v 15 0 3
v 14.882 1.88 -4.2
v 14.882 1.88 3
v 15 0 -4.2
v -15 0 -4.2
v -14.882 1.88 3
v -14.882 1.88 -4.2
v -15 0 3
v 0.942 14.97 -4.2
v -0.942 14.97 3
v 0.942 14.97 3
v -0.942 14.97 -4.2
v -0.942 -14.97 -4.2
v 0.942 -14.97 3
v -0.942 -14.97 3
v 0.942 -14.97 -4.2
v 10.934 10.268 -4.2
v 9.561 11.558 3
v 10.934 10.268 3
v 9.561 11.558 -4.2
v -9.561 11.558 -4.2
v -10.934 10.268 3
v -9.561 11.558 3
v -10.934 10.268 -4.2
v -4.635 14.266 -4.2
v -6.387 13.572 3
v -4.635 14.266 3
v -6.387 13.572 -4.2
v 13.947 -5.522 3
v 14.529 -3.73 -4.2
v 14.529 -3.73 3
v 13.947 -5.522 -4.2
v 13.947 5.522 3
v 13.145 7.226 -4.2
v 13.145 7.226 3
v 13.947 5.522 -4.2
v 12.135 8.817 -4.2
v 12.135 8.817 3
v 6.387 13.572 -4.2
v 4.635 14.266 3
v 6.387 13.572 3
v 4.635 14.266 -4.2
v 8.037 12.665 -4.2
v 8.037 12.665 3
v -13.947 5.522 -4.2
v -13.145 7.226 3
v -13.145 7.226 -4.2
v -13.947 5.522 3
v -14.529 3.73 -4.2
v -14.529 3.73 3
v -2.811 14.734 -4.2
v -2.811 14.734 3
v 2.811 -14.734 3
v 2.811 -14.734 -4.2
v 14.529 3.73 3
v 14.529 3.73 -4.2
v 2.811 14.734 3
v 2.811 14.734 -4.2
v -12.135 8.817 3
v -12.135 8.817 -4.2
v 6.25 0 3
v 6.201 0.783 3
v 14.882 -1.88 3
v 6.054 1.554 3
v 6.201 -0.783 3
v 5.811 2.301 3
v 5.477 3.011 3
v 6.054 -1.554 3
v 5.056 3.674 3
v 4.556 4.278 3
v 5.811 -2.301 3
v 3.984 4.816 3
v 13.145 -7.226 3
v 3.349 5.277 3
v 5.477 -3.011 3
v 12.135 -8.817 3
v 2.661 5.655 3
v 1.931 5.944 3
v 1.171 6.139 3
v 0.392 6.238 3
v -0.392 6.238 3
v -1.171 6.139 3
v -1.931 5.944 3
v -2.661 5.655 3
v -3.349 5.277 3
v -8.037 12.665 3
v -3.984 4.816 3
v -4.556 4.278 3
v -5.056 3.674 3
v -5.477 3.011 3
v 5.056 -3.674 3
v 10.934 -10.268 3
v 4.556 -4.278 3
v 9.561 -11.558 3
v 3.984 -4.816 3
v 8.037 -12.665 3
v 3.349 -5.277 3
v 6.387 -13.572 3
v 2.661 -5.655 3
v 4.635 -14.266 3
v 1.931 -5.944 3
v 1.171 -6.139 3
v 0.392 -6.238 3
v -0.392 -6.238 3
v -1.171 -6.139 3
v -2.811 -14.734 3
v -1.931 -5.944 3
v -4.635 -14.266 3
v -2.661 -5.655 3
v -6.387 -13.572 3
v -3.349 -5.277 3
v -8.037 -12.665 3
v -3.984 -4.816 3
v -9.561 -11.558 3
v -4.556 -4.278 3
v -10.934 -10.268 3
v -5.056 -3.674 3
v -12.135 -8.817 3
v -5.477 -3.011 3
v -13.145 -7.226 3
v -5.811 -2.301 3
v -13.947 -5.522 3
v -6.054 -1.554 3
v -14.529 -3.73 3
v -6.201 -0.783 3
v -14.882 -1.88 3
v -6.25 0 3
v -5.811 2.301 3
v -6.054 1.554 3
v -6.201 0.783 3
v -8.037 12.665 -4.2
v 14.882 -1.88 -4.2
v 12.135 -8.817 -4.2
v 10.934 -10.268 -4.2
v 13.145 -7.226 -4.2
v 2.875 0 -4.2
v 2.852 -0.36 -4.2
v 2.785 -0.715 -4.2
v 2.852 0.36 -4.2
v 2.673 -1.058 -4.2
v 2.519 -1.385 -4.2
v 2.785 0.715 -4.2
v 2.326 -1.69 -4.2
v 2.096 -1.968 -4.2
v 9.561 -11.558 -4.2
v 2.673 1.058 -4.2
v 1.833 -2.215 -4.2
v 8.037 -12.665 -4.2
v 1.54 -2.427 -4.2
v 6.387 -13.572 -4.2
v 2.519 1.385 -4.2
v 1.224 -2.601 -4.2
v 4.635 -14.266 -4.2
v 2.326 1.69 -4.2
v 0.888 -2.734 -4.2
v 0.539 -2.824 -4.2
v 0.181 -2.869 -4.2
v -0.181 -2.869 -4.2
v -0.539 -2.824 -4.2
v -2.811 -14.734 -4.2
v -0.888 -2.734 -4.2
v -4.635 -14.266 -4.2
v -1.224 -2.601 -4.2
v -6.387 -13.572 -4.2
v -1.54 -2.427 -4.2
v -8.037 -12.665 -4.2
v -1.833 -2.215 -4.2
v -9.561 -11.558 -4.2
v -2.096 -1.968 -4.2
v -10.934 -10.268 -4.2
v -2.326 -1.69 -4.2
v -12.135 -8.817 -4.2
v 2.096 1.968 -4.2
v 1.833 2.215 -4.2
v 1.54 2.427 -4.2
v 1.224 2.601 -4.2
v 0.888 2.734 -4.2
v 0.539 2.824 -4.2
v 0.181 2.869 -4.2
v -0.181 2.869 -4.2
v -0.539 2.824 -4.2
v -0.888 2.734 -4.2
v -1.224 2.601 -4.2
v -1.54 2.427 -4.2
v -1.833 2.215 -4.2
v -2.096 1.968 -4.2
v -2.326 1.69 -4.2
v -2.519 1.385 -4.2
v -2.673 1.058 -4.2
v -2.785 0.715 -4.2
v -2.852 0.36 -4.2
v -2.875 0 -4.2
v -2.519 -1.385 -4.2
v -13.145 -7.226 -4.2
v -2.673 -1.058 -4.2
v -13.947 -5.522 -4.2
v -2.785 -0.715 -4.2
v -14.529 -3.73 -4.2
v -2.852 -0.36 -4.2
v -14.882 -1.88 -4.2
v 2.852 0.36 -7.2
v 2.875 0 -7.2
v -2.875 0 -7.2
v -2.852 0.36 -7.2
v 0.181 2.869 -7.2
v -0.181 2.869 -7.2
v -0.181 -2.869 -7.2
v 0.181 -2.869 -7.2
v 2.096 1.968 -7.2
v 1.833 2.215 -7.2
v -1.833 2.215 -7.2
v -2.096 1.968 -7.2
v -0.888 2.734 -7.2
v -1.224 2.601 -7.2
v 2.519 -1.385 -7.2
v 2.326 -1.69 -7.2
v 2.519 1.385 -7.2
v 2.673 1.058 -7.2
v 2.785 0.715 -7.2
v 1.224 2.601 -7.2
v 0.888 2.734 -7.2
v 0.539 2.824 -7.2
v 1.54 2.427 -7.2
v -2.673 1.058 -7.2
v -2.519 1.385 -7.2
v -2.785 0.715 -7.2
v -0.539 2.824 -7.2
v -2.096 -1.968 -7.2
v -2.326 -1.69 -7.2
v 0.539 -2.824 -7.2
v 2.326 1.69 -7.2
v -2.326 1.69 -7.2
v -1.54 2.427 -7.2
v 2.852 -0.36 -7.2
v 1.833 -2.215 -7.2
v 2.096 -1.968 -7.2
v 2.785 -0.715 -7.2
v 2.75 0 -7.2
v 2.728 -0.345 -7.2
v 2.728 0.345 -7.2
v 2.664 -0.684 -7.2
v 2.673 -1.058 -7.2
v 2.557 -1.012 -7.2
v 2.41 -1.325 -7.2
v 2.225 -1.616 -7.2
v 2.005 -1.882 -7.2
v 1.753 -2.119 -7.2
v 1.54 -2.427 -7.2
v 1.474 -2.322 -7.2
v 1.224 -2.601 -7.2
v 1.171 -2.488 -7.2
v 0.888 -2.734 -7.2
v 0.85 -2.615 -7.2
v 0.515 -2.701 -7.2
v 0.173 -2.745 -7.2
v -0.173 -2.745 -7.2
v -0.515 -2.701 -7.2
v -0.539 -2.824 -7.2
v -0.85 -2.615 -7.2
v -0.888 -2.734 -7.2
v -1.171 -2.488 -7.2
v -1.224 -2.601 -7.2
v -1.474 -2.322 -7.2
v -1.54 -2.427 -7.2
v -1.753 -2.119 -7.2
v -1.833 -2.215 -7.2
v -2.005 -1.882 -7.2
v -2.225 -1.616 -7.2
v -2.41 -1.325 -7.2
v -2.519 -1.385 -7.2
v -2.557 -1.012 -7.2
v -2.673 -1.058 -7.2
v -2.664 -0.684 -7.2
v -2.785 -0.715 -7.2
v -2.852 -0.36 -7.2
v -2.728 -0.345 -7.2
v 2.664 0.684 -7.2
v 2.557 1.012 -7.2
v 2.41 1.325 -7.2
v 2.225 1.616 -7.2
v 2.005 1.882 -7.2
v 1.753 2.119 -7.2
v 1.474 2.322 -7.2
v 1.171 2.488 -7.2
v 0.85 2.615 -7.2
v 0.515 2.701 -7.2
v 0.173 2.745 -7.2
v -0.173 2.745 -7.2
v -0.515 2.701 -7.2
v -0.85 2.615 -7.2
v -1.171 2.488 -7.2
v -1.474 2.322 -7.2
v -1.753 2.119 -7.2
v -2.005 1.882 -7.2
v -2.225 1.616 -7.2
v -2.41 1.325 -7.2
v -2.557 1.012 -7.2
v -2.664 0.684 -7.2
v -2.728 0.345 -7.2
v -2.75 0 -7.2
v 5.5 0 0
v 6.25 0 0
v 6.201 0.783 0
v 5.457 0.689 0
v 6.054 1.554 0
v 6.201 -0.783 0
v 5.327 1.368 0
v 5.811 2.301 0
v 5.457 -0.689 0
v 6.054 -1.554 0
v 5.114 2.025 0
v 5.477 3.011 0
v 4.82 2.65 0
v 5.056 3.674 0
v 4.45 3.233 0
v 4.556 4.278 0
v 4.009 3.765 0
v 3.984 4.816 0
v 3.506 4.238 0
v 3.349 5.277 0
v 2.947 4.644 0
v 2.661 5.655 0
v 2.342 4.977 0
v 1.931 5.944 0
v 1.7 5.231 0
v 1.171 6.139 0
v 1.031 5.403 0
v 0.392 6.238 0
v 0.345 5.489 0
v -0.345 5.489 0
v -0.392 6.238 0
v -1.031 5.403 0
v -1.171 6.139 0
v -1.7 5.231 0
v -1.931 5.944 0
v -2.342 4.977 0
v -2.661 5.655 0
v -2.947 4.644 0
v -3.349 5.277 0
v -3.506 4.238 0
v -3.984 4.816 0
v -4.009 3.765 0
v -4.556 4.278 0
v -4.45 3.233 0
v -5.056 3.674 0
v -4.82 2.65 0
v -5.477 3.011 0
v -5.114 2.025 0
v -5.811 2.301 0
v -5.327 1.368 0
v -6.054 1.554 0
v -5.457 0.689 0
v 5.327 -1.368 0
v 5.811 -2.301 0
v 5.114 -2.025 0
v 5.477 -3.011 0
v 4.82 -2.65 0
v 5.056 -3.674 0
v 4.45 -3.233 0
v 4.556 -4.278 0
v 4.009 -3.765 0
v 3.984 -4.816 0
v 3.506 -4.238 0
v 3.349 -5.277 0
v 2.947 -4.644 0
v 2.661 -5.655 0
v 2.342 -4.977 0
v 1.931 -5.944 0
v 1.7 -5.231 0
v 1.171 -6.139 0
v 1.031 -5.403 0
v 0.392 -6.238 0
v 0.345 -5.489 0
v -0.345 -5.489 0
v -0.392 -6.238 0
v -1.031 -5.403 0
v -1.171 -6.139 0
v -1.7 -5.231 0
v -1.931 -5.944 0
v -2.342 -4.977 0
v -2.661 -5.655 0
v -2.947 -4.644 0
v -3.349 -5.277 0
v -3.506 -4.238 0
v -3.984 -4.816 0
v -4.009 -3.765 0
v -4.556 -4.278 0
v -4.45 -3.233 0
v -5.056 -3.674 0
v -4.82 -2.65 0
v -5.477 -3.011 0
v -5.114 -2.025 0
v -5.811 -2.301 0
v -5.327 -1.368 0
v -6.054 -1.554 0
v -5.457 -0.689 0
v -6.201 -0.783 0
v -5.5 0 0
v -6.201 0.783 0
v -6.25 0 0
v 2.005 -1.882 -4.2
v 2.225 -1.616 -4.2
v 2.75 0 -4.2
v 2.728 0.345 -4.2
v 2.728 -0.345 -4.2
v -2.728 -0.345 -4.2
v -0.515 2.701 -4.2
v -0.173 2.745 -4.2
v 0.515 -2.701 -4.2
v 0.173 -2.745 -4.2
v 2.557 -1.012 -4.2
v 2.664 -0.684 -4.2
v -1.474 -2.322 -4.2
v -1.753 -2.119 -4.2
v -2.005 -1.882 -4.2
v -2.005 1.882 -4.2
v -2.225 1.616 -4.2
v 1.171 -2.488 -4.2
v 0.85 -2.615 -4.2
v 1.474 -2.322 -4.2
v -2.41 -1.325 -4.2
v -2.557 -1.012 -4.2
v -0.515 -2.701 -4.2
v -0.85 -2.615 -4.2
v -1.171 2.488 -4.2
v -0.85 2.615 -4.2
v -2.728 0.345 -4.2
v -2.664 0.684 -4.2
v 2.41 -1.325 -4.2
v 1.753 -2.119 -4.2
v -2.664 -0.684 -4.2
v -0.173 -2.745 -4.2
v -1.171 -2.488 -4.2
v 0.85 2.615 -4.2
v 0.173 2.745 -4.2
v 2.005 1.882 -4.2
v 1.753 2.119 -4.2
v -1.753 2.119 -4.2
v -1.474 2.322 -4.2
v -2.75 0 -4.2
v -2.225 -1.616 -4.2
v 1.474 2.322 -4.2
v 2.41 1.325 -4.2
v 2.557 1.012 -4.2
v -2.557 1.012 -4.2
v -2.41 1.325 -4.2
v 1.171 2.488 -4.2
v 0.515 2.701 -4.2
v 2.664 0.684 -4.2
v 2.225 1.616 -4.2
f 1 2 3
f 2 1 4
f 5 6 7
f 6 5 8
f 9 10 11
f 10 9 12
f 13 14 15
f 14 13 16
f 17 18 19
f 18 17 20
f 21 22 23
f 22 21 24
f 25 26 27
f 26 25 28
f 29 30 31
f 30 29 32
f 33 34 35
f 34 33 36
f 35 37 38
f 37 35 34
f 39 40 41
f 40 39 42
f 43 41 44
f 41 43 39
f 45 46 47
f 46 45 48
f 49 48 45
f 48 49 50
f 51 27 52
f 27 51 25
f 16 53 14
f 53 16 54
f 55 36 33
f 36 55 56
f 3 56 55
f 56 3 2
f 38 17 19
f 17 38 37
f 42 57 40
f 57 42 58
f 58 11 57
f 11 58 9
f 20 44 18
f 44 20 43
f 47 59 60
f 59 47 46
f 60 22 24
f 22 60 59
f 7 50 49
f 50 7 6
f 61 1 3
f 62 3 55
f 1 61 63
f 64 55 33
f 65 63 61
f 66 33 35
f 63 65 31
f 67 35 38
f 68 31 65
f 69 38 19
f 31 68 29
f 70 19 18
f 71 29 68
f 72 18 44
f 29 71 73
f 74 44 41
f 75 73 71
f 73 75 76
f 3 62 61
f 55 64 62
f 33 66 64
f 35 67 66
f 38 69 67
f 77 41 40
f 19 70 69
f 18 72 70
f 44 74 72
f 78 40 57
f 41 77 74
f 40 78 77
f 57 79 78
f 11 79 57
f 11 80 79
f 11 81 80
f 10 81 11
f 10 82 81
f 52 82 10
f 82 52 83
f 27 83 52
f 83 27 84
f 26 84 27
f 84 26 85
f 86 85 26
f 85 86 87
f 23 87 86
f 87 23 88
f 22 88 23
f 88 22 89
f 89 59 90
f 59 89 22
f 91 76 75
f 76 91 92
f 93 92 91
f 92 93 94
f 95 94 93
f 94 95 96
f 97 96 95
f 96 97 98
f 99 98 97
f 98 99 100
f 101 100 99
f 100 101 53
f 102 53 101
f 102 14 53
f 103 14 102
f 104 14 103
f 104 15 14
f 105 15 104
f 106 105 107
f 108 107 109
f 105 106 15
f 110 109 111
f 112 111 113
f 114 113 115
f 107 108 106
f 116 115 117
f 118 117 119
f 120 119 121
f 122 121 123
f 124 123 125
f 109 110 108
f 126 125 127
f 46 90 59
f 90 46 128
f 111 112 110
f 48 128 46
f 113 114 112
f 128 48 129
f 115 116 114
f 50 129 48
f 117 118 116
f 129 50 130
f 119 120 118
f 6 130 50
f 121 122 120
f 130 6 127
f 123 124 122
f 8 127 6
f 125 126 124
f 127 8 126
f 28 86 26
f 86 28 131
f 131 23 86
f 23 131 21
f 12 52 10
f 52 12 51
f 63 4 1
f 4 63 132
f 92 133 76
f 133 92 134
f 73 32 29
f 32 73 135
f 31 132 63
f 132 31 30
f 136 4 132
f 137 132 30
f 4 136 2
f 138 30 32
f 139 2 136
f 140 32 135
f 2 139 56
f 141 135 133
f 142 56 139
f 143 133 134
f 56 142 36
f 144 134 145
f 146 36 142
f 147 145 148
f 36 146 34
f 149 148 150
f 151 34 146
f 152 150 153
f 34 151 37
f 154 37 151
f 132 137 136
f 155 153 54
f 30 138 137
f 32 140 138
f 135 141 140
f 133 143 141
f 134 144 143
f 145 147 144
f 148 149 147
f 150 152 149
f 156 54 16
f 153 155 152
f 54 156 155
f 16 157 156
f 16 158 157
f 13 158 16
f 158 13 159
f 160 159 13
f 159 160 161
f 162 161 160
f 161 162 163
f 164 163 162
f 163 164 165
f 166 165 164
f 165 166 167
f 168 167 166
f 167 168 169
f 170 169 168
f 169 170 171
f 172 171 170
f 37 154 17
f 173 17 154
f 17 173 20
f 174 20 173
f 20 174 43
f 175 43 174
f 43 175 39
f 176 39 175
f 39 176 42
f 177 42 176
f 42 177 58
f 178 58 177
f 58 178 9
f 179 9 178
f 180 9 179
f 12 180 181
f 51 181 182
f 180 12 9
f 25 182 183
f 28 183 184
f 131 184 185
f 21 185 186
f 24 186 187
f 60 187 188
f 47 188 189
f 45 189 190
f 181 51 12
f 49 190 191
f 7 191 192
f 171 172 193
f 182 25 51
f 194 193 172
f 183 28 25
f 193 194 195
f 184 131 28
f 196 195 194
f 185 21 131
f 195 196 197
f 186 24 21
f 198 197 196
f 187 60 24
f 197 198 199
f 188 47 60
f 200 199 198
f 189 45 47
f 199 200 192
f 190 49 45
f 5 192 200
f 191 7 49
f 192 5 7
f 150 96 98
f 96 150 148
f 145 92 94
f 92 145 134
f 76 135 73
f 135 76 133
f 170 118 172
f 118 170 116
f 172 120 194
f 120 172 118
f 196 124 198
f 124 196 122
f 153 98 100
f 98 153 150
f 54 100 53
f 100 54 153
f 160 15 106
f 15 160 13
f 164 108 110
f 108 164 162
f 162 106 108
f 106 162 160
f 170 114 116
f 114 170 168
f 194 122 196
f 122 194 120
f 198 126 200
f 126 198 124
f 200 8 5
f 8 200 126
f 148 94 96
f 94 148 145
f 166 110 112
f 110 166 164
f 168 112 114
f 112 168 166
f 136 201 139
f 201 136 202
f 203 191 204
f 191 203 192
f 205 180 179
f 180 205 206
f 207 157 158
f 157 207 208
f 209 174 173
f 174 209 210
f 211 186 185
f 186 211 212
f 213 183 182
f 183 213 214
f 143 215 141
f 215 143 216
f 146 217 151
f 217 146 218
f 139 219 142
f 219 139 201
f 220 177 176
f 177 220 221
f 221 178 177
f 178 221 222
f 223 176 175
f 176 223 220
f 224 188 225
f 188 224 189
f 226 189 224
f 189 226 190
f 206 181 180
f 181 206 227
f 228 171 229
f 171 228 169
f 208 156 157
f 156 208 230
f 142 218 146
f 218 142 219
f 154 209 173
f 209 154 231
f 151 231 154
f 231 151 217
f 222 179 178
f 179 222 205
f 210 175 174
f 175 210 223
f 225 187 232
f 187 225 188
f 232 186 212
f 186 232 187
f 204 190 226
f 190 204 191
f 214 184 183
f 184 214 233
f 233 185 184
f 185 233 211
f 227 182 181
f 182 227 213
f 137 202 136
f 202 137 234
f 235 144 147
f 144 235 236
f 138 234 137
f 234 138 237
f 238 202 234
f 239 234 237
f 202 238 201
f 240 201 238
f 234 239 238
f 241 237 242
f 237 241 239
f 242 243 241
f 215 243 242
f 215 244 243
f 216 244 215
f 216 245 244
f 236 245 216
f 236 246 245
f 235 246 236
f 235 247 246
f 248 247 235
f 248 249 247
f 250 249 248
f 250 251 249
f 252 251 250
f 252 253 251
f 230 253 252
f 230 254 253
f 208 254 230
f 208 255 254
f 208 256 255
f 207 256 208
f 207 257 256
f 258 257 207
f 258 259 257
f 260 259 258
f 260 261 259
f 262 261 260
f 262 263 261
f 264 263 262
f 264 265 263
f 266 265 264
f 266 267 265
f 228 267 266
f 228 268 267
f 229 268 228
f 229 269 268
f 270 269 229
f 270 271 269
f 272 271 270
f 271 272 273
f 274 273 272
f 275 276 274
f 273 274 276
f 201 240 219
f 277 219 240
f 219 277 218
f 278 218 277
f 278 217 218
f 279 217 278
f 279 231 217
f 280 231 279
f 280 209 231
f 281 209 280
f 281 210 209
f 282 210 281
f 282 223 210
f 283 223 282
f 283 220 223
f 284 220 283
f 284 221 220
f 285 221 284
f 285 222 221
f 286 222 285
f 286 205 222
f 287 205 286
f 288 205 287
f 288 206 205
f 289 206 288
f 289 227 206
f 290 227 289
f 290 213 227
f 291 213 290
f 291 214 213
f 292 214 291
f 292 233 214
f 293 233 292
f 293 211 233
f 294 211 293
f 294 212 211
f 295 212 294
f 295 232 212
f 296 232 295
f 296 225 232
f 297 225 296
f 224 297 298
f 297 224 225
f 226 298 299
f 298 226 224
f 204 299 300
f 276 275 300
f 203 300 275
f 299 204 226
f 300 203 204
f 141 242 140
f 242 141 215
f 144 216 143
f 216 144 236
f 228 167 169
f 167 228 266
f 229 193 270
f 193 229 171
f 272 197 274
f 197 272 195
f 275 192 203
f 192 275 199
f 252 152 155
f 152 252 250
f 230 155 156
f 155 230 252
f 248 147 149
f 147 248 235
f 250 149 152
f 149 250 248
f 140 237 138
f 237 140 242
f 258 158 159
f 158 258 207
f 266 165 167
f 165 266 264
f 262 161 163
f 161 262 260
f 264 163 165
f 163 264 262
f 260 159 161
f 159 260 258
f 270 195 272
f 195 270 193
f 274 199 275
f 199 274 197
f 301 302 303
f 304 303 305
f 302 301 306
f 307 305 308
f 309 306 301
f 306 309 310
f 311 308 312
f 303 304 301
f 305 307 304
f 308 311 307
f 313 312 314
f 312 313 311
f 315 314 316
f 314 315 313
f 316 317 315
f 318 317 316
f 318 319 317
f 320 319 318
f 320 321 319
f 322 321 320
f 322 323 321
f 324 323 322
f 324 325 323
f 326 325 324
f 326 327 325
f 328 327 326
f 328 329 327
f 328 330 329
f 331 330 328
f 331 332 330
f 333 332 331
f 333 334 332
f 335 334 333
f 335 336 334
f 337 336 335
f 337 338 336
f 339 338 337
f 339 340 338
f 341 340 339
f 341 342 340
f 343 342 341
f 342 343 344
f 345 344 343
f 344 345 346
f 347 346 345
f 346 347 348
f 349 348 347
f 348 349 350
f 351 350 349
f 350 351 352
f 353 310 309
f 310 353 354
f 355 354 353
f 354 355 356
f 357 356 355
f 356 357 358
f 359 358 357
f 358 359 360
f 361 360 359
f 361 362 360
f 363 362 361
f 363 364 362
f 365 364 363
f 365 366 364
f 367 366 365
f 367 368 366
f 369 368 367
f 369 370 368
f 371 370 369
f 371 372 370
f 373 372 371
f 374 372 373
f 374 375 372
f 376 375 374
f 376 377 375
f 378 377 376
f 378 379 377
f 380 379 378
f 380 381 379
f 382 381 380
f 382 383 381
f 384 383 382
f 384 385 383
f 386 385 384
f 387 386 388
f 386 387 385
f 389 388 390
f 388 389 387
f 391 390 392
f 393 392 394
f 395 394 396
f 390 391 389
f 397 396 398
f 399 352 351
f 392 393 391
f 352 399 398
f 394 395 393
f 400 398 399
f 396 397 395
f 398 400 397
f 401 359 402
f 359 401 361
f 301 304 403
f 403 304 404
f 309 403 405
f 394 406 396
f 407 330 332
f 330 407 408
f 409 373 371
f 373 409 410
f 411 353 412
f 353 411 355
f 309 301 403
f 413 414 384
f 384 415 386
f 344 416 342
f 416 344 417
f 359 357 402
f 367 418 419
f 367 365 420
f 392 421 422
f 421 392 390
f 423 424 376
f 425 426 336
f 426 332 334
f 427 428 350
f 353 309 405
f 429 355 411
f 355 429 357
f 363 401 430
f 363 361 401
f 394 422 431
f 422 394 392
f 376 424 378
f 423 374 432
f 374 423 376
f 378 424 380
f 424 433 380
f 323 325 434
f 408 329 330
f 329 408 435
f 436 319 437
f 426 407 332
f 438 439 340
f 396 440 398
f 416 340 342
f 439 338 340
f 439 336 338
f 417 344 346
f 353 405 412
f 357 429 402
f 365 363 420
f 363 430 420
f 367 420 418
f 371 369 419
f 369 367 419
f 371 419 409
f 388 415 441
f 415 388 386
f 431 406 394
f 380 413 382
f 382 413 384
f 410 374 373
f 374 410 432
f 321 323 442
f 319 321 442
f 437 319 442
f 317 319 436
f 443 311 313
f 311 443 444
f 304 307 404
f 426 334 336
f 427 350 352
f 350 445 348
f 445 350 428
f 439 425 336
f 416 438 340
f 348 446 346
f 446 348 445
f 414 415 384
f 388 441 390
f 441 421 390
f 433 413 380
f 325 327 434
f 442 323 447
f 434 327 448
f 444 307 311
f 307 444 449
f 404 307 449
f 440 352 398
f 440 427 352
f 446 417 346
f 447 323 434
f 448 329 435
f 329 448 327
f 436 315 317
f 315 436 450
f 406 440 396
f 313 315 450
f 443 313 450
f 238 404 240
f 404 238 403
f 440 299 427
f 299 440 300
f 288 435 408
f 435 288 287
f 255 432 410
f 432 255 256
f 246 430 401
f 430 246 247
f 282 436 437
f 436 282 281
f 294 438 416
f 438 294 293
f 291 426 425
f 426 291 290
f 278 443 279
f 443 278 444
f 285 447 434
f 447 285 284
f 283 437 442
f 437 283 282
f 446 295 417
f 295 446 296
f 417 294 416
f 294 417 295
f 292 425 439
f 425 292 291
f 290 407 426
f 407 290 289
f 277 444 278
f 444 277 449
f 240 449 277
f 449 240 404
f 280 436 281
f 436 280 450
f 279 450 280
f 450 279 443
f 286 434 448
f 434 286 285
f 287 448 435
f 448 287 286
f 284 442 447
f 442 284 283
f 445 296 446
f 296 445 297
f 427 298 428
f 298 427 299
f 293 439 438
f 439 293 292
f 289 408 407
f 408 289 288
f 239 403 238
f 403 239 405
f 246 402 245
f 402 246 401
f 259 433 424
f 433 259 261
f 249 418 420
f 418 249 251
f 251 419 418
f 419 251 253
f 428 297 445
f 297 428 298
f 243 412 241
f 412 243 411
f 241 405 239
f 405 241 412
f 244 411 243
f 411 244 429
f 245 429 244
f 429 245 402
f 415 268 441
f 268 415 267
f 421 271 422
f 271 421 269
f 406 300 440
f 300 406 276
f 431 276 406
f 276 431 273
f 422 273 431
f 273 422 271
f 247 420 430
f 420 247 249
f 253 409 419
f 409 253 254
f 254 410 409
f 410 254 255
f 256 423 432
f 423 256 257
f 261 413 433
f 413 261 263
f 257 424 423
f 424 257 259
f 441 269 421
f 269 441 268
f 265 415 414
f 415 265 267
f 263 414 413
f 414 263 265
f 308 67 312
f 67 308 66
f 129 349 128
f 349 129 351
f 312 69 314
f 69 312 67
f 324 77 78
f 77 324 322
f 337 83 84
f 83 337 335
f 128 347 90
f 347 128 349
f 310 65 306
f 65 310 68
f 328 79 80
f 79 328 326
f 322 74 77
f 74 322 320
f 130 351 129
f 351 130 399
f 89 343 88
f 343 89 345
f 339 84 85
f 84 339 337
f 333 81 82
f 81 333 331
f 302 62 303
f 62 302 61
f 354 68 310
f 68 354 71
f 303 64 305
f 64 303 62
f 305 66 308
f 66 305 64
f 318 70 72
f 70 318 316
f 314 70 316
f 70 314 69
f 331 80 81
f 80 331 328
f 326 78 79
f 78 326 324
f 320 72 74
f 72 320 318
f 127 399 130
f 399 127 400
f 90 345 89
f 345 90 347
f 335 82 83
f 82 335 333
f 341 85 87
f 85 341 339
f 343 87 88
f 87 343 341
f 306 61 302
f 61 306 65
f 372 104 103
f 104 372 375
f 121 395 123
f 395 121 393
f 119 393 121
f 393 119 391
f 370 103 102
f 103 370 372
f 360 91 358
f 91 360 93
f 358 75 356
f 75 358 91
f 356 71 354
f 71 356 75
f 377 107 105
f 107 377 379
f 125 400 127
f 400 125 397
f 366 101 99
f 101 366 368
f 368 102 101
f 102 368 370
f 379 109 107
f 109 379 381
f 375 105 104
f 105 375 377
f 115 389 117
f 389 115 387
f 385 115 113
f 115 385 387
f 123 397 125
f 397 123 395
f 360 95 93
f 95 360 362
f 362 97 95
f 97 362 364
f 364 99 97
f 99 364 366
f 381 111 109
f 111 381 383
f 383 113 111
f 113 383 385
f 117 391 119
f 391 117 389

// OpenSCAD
$fn = 50;

difference() {
	union() {
		translate(v = [0, 0, -4.2]) {
			cylinder(h = 7.2, r = 15.0);
		}
		#translate(v = [0, 0, -7.2]) {
			cylinder(h = 7.2, r = 2.875);
		}
	}
	union() {
		translate(v = [0, 0, 0]) {
			rotate(a = [0, 0, 0]) {
				difference() {
					union() {
						translate(v = [0, 0, -7.2]) {
							cylinder(h = 7.2, r = 2.25);
						}
						translate(v = [0, 0, -4.2]) {
							cylinder(h = 4.2, r1 = 2.75, r2 = 5.5);
						}
						translate(v = [0, 0, -7.2]) {
							cylinder(h = 7.2, r = 2.75);
						}
						translate(v = [0, 0, -7.2]) {
							cylinder(h = 7.2, r = 2.25);
						}
					}
					union();
				}
			}
		}
		#cylinder(h = 3, r = 6.25);
	}
}
